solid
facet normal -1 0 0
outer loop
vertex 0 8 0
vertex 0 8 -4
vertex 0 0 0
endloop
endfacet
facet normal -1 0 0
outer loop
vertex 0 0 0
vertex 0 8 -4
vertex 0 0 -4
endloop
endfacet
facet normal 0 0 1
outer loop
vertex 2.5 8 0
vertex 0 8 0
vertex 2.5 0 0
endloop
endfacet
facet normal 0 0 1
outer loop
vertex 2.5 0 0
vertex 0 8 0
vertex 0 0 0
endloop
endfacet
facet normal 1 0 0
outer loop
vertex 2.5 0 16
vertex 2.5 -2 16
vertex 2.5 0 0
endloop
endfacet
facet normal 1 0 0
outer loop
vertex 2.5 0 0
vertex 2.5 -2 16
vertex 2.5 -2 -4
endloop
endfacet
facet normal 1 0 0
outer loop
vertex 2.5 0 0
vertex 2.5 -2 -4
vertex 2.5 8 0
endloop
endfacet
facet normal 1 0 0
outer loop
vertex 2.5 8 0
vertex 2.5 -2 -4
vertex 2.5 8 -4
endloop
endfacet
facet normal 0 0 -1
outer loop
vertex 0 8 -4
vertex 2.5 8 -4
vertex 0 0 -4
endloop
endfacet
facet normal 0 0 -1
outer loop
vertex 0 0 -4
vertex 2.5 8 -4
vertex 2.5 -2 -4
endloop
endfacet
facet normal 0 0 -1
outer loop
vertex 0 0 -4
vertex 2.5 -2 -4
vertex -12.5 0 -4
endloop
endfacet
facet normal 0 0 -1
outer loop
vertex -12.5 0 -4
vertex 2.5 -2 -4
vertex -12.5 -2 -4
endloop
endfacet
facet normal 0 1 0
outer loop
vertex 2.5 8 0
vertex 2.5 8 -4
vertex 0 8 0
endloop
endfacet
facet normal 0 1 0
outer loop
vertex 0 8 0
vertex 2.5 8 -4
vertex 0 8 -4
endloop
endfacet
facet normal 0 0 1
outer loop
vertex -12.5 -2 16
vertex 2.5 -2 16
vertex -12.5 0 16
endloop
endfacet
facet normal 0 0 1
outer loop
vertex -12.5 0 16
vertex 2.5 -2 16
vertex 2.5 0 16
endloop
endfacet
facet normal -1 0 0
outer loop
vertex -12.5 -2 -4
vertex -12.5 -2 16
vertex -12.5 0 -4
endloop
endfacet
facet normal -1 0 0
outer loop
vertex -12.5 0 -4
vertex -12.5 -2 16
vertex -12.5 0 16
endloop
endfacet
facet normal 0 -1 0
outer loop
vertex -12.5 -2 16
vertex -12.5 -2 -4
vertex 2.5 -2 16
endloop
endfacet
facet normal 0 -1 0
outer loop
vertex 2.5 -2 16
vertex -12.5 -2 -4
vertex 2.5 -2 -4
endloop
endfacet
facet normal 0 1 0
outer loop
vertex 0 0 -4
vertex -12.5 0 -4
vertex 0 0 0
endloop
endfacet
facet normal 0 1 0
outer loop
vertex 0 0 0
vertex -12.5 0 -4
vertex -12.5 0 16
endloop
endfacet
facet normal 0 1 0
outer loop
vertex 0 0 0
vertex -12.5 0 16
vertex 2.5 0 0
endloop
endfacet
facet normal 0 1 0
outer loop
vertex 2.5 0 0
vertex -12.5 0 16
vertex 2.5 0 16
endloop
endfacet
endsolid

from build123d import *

# Parameters (mm, degrees)
SKETCH_1_W      = 2.5
SKETCH_1_H      = 4
EXTRUDE_1_DEPTH = 8
SKETCH_2_W      = 15
SKETCH_2_H      = 20
EXTRUDE_2_DEPTH = 2


with BuildPart() as part:
    # 草图1 → 凸台-拉伸1 (new body)
    with BuildSketch(Plane(origin=(0, 0, 0), x_dir=(1, 0, 0), z_dir=(0, 1, 0))):
        with Locations((1.25, 2)):
            Rectangle(SKETCH_1_W, SKETCH_1_H)
    extrude(amount=EXTRUDE_1_DEPTH)

    # 草图2 → 凸台-拉伸2 (add)
    with BuildSketch(Plane.XZ):
        with Locations((-5, 6)):
            Rectangle(SKETCH_2_W, SKETCH_2_H)
    extrude(amount=EXTRUDE_2_DEPTH)


solid = part.part
